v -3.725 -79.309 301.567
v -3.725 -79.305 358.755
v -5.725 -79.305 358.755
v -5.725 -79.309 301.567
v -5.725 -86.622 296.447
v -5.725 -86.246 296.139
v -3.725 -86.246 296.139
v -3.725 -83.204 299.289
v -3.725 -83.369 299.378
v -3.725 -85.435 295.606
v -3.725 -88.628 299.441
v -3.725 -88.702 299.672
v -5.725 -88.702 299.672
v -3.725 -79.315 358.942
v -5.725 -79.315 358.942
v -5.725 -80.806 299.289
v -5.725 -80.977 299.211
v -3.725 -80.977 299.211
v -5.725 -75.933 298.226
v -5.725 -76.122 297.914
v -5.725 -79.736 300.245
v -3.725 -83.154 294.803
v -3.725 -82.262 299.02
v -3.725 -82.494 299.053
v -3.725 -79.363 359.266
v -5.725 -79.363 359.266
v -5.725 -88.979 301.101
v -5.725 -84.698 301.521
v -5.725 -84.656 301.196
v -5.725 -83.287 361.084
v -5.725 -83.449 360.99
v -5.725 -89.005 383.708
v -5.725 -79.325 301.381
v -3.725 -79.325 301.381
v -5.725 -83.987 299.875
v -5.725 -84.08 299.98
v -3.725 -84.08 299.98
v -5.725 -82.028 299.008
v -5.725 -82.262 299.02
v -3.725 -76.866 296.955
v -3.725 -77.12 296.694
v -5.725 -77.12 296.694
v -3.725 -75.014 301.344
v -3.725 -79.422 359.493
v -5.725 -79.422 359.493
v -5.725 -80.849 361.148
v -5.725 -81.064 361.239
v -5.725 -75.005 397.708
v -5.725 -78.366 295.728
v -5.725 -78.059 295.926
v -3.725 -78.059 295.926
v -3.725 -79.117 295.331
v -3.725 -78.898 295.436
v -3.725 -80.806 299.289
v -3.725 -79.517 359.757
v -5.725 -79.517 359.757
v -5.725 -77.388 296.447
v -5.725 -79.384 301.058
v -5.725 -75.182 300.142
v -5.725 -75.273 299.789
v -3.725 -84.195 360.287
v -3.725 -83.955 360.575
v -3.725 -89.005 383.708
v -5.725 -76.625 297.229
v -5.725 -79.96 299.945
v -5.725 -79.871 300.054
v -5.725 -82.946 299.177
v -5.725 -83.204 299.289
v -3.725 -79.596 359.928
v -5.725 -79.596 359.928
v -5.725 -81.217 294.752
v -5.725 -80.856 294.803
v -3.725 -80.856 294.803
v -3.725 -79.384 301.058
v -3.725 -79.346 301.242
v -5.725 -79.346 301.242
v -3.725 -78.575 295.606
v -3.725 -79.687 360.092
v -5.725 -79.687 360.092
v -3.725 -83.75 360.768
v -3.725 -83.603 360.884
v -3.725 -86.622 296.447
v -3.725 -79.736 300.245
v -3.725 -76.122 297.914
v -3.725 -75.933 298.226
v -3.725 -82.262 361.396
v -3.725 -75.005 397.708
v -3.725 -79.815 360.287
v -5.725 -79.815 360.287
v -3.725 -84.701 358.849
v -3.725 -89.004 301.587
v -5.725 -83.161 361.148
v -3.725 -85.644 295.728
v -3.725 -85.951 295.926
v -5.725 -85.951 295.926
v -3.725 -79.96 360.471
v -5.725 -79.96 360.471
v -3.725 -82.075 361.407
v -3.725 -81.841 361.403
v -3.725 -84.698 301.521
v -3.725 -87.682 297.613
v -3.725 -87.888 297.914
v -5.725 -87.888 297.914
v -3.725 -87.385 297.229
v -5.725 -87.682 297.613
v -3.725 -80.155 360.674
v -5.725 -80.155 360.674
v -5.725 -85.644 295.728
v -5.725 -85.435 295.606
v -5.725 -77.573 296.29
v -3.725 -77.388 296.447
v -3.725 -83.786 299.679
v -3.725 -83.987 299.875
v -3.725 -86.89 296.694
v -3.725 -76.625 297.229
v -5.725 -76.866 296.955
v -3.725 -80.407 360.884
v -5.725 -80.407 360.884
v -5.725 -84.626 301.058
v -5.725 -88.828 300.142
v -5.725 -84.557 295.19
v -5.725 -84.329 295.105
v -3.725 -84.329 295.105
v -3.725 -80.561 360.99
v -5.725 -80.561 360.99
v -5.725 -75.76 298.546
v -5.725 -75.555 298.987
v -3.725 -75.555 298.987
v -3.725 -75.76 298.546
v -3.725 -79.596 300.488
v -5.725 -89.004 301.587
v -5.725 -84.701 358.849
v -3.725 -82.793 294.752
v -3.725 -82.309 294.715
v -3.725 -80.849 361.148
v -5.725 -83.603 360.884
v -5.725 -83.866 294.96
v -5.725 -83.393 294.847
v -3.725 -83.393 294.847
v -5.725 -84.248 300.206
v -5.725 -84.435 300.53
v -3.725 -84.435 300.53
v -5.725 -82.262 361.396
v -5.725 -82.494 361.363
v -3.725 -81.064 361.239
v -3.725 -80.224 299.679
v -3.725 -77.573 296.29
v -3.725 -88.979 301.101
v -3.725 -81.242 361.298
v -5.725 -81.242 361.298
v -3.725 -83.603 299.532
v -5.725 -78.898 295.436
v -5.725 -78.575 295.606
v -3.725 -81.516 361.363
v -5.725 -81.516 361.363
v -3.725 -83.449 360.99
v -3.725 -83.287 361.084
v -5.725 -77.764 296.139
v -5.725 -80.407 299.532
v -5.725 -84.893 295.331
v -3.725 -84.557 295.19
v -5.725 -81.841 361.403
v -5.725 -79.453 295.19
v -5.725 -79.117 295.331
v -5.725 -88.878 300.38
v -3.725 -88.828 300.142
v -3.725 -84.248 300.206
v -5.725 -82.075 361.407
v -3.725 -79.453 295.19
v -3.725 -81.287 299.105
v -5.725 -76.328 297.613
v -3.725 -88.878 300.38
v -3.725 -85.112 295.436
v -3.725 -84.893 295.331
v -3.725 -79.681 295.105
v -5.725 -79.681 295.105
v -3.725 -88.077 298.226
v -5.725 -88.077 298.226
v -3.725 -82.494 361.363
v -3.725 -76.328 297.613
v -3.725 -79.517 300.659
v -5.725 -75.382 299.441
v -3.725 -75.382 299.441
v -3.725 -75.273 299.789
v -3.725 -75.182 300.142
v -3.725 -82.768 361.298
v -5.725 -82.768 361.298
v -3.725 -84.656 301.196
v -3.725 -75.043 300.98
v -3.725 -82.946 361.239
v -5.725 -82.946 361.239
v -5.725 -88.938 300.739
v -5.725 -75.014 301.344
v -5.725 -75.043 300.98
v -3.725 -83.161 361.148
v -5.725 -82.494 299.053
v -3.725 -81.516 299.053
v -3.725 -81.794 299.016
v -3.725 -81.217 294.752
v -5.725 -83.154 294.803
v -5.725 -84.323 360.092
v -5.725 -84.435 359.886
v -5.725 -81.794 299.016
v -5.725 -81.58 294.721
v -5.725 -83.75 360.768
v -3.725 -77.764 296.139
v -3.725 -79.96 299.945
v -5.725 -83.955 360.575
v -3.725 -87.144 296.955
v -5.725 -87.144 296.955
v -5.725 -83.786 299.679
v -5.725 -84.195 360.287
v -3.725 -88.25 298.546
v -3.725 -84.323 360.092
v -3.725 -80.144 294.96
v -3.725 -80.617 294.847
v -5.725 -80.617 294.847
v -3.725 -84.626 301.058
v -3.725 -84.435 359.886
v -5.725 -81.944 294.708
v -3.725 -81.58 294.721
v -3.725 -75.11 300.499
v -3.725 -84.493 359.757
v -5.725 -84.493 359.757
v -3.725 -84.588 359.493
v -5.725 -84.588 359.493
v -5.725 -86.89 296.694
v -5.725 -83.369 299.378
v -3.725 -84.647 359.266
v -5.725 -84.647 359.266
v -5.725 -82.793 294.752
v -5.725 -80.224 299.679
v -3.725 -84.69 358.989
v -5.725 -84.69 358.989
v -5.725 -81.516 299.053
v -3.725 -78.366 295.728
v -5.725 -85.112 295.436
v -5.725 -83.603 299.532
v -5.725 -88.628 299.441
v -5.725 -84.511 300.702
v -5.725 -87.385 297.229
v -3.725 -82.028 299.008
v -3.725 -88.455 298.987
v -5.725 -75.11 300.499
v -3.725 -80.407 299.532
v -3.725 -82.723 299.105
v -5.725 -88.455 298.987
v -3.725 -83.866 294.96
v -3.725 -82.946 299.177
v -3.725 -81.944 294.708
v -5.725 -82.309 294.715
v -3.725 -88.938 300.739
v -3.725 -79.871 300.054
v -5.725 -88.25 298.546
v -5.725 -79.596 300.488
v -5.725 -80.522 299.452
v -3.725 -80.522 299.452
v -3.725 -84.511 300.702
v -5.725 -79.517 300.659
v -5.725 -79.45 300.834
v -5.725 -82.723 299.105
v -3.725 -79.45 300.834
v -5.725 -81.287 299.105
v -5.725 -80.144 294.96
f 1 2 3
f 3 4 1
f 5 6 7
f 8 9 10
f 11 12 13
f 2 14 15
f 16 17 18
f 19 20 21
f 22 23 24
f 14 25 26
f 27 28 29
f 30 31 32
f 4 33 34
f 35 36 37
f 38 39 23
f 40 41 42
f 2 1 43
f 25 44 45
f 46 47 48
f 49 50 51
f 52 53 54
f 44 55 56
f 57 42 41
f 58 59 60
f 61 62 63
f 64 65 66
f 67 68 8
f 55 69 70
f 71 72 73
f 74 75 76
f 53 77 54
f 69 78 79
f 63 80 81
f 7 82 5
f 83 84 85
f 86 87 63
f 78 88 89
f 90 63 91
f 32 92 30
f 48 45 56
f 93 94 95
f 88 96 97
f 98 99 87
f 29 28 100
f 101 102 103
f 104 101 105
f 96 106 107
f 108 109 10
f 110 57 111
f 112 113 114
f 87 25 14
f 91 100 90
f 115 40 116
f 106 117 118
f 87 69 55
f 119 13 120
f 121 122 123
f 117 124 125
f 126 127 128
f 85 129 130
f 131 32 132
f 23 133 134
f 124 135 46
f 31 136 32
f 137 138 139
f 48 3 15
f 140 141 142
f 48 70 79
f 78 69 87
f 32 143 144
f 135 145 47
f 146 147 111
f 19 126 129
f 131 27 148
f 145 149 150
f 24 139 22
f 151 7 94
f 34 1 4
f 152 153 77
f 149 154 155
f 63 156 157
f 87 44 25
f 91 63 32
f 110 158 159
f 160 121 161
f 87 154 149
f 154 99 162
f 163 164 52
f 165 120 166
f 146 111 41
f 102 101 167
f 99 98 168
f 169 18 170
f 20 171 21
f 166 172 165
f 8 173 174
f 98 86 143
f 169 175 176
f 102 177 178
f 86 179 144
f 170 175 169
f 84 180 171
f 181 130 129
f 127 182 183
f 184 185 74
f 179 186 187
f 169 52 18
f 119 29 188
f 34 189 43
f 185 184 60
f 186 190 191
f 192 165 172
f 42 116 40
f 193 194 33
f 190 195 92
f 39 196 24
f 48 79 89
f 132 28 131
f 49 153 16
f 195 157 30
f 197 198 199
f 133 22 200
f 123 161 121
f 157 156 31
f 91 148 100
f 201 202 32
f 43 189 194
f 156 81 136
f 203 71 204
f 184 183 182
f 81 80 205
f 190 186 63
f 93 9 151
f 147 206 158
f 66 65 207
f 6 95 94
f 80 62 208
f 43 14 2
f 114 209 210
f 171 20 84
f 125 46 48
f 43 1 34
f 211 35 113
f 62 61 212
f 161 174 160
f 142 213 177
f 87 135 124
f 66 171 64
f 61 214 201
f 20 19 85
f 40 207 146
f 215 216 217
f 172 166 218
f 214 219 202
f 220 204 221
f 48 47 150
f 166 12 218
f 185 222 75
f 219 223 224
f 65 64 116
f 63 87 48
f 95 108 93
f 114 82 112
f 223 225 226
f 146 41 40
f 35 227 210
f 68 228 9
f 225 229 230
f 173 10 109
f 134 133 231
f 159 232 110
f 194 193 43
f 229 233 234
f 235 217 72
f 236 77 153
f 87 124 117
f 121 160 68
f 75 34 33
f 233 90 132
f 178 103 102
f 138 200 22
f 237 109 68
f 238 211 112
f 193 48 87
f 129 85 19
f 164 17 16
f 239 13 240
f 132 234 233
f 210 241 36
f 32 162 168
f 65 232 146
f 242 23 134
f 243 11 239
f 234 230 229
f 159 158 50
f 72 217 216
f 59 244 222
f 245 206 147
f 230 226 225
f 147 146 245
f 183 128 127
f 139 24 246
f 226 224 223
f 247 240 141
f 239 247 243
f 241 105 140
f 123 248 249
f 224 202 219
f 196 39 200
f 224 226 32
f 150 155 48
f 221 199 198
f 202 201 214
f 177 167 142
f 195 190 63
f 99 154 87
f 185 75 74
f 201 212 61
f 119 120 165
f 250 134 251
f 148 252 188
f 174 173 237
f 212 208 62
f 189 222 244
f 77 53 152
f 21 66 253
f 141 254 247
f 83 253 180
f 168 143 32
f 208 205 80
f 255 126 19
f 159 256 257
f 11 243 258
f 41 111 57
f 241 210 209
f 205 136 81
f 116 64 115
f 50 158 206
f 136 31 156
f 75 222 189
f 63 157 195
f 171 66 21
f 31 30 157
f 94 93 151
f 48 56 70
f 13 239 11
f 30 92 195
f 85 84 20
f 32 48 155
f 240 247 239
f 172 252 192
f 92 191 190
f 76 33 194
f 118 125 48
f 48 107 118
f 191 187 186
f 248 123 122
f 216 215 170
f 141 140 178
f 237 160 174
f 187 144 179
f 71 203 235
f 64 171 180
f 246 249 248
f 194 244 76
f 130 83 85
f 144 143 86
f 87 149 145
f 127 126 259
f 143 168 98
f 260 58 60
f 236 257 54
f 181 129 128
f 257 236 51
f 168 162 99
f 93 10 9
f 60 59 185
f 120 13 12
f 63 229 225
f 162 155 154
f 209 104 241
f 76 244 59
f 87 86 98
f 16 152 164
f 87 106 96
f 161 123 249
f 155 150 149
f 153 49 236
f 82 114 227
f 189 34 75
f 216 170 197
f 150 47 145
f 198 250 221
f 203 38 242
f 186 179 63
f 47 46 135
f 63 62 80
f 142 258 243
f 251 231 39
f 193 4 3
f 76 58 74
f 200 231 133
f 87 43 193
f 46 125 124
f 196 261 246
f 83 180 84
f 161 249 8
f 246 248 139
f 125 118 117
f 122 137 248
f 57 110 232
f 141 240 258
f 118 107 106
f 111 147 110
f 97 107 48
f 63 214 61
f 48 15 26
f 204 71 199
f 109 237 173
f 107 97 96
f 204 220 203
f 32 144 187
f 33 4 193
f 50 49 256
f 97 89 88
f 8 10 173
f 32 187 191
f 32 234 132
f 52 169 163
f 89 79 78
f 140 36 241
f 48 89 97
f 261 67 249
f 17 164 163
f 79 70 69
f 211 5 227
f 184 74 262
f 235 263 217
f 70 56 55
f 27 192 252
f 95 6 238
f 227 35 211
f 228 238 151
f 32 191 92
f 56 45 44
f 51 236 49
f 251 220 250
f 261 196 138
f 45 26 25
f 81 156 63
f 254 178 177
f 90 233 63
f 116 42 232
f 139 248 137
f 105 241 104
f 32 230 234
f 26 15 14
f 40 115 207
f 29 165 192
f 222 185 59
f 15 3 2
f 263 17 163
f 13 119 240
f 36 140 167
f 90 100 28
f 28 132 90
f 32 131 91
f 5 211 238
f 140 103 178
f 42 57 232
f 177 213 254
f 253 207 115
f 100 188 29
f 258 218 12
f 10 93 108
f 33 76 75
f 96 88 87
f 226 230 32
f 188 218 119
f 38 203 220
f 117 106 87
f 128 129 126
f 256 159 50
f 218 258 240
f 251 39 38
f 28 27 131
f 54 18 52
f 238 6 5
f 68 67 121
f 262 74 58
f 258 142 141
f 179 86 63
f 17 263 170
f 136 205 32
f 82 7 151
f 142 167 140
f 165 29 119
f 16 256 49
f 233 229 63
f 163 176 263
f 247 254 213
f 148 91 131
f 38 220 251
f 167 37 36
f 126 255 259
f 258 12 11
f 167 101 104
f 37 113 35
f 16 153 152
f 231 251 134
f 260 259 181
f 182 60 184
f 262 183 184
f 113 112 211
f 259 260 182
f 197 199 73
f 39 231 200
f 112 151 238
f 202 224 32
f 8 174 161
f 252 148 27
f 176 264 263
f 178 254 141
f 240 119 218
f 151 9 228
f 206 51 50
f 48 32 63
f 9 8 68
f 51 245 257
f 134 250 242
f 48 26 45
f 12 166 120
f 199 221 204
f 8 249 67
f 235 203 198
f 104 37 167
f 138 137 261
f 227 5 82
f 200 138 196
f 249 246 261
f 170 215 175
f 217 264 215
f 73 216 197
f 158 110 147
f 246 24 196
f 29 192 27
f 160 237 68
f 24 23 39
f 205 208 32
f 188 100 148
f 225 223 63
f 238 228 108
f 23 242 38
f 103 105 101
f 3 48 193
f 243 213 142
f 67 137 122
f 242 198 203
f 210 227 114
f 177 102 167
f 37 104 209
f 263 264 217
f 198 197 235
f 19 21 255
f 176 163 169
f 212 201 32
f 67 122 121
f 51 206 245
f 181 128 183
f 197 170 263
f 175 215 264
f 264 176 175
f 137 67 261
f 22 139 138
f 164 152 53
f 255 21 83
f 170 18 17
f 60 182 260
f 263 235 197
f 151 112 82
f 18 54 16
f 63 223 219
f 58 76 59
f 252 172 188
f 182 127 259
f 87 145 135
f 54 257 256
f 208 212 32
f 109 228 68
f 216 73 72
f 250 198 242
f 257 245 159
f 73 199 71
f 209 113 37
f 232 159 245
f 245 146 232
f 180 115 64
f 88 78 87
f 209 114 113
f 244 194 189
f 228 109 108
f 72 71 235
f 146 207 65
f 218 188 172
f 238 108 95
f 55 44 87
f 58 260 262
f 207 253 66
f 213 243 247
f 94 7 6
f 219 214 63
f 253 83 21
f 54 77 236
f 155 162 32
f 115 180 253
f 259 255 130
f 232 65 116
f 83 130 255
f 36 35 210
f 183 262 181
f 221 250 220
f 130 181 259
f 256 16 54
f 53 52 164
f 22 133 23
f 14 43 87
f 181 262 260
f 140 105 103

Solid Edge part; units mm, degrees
sketch "Sketch1" plane through (-5.725, 0, 0) normal (1, 0, 0) x (0, 1, 0)
  arc A0 (-75.005, 301.708) -> (-89.005, 301.708) centre (-82.005, 301.708) cw
  line L0 (-89.005, 301.708) -> (-89.005, 383.708)
  line L1 (-89.005, 383.708) -> (-75.005, 397.708)
  line L2 (-75.005, 397.708) -> (-75.005, 301.708)
  line L3 (-79.305, 301.708) -> (-79.305, 358.708)
  arc A1 (-84.705, 301.708) -> (-79.305, 301.708) centre (-82.005, 301.708) ccw
  line L4 (-84.705, 358.708) -> (-84.705, 301.708)
  arc A2 (-79.305, 358.708) -> (-84.705, 358.708) centre (-82.005, 358.708) ccw
  dimension "D1" = 96
  dimension "D2" = 82
extrude "ExtrudedProtrusion_1" add sketch "Sketch1" along normal blind 2
extrude "Cutout1" [suppressed]
properties material "ABS Plastic, medium impact"
